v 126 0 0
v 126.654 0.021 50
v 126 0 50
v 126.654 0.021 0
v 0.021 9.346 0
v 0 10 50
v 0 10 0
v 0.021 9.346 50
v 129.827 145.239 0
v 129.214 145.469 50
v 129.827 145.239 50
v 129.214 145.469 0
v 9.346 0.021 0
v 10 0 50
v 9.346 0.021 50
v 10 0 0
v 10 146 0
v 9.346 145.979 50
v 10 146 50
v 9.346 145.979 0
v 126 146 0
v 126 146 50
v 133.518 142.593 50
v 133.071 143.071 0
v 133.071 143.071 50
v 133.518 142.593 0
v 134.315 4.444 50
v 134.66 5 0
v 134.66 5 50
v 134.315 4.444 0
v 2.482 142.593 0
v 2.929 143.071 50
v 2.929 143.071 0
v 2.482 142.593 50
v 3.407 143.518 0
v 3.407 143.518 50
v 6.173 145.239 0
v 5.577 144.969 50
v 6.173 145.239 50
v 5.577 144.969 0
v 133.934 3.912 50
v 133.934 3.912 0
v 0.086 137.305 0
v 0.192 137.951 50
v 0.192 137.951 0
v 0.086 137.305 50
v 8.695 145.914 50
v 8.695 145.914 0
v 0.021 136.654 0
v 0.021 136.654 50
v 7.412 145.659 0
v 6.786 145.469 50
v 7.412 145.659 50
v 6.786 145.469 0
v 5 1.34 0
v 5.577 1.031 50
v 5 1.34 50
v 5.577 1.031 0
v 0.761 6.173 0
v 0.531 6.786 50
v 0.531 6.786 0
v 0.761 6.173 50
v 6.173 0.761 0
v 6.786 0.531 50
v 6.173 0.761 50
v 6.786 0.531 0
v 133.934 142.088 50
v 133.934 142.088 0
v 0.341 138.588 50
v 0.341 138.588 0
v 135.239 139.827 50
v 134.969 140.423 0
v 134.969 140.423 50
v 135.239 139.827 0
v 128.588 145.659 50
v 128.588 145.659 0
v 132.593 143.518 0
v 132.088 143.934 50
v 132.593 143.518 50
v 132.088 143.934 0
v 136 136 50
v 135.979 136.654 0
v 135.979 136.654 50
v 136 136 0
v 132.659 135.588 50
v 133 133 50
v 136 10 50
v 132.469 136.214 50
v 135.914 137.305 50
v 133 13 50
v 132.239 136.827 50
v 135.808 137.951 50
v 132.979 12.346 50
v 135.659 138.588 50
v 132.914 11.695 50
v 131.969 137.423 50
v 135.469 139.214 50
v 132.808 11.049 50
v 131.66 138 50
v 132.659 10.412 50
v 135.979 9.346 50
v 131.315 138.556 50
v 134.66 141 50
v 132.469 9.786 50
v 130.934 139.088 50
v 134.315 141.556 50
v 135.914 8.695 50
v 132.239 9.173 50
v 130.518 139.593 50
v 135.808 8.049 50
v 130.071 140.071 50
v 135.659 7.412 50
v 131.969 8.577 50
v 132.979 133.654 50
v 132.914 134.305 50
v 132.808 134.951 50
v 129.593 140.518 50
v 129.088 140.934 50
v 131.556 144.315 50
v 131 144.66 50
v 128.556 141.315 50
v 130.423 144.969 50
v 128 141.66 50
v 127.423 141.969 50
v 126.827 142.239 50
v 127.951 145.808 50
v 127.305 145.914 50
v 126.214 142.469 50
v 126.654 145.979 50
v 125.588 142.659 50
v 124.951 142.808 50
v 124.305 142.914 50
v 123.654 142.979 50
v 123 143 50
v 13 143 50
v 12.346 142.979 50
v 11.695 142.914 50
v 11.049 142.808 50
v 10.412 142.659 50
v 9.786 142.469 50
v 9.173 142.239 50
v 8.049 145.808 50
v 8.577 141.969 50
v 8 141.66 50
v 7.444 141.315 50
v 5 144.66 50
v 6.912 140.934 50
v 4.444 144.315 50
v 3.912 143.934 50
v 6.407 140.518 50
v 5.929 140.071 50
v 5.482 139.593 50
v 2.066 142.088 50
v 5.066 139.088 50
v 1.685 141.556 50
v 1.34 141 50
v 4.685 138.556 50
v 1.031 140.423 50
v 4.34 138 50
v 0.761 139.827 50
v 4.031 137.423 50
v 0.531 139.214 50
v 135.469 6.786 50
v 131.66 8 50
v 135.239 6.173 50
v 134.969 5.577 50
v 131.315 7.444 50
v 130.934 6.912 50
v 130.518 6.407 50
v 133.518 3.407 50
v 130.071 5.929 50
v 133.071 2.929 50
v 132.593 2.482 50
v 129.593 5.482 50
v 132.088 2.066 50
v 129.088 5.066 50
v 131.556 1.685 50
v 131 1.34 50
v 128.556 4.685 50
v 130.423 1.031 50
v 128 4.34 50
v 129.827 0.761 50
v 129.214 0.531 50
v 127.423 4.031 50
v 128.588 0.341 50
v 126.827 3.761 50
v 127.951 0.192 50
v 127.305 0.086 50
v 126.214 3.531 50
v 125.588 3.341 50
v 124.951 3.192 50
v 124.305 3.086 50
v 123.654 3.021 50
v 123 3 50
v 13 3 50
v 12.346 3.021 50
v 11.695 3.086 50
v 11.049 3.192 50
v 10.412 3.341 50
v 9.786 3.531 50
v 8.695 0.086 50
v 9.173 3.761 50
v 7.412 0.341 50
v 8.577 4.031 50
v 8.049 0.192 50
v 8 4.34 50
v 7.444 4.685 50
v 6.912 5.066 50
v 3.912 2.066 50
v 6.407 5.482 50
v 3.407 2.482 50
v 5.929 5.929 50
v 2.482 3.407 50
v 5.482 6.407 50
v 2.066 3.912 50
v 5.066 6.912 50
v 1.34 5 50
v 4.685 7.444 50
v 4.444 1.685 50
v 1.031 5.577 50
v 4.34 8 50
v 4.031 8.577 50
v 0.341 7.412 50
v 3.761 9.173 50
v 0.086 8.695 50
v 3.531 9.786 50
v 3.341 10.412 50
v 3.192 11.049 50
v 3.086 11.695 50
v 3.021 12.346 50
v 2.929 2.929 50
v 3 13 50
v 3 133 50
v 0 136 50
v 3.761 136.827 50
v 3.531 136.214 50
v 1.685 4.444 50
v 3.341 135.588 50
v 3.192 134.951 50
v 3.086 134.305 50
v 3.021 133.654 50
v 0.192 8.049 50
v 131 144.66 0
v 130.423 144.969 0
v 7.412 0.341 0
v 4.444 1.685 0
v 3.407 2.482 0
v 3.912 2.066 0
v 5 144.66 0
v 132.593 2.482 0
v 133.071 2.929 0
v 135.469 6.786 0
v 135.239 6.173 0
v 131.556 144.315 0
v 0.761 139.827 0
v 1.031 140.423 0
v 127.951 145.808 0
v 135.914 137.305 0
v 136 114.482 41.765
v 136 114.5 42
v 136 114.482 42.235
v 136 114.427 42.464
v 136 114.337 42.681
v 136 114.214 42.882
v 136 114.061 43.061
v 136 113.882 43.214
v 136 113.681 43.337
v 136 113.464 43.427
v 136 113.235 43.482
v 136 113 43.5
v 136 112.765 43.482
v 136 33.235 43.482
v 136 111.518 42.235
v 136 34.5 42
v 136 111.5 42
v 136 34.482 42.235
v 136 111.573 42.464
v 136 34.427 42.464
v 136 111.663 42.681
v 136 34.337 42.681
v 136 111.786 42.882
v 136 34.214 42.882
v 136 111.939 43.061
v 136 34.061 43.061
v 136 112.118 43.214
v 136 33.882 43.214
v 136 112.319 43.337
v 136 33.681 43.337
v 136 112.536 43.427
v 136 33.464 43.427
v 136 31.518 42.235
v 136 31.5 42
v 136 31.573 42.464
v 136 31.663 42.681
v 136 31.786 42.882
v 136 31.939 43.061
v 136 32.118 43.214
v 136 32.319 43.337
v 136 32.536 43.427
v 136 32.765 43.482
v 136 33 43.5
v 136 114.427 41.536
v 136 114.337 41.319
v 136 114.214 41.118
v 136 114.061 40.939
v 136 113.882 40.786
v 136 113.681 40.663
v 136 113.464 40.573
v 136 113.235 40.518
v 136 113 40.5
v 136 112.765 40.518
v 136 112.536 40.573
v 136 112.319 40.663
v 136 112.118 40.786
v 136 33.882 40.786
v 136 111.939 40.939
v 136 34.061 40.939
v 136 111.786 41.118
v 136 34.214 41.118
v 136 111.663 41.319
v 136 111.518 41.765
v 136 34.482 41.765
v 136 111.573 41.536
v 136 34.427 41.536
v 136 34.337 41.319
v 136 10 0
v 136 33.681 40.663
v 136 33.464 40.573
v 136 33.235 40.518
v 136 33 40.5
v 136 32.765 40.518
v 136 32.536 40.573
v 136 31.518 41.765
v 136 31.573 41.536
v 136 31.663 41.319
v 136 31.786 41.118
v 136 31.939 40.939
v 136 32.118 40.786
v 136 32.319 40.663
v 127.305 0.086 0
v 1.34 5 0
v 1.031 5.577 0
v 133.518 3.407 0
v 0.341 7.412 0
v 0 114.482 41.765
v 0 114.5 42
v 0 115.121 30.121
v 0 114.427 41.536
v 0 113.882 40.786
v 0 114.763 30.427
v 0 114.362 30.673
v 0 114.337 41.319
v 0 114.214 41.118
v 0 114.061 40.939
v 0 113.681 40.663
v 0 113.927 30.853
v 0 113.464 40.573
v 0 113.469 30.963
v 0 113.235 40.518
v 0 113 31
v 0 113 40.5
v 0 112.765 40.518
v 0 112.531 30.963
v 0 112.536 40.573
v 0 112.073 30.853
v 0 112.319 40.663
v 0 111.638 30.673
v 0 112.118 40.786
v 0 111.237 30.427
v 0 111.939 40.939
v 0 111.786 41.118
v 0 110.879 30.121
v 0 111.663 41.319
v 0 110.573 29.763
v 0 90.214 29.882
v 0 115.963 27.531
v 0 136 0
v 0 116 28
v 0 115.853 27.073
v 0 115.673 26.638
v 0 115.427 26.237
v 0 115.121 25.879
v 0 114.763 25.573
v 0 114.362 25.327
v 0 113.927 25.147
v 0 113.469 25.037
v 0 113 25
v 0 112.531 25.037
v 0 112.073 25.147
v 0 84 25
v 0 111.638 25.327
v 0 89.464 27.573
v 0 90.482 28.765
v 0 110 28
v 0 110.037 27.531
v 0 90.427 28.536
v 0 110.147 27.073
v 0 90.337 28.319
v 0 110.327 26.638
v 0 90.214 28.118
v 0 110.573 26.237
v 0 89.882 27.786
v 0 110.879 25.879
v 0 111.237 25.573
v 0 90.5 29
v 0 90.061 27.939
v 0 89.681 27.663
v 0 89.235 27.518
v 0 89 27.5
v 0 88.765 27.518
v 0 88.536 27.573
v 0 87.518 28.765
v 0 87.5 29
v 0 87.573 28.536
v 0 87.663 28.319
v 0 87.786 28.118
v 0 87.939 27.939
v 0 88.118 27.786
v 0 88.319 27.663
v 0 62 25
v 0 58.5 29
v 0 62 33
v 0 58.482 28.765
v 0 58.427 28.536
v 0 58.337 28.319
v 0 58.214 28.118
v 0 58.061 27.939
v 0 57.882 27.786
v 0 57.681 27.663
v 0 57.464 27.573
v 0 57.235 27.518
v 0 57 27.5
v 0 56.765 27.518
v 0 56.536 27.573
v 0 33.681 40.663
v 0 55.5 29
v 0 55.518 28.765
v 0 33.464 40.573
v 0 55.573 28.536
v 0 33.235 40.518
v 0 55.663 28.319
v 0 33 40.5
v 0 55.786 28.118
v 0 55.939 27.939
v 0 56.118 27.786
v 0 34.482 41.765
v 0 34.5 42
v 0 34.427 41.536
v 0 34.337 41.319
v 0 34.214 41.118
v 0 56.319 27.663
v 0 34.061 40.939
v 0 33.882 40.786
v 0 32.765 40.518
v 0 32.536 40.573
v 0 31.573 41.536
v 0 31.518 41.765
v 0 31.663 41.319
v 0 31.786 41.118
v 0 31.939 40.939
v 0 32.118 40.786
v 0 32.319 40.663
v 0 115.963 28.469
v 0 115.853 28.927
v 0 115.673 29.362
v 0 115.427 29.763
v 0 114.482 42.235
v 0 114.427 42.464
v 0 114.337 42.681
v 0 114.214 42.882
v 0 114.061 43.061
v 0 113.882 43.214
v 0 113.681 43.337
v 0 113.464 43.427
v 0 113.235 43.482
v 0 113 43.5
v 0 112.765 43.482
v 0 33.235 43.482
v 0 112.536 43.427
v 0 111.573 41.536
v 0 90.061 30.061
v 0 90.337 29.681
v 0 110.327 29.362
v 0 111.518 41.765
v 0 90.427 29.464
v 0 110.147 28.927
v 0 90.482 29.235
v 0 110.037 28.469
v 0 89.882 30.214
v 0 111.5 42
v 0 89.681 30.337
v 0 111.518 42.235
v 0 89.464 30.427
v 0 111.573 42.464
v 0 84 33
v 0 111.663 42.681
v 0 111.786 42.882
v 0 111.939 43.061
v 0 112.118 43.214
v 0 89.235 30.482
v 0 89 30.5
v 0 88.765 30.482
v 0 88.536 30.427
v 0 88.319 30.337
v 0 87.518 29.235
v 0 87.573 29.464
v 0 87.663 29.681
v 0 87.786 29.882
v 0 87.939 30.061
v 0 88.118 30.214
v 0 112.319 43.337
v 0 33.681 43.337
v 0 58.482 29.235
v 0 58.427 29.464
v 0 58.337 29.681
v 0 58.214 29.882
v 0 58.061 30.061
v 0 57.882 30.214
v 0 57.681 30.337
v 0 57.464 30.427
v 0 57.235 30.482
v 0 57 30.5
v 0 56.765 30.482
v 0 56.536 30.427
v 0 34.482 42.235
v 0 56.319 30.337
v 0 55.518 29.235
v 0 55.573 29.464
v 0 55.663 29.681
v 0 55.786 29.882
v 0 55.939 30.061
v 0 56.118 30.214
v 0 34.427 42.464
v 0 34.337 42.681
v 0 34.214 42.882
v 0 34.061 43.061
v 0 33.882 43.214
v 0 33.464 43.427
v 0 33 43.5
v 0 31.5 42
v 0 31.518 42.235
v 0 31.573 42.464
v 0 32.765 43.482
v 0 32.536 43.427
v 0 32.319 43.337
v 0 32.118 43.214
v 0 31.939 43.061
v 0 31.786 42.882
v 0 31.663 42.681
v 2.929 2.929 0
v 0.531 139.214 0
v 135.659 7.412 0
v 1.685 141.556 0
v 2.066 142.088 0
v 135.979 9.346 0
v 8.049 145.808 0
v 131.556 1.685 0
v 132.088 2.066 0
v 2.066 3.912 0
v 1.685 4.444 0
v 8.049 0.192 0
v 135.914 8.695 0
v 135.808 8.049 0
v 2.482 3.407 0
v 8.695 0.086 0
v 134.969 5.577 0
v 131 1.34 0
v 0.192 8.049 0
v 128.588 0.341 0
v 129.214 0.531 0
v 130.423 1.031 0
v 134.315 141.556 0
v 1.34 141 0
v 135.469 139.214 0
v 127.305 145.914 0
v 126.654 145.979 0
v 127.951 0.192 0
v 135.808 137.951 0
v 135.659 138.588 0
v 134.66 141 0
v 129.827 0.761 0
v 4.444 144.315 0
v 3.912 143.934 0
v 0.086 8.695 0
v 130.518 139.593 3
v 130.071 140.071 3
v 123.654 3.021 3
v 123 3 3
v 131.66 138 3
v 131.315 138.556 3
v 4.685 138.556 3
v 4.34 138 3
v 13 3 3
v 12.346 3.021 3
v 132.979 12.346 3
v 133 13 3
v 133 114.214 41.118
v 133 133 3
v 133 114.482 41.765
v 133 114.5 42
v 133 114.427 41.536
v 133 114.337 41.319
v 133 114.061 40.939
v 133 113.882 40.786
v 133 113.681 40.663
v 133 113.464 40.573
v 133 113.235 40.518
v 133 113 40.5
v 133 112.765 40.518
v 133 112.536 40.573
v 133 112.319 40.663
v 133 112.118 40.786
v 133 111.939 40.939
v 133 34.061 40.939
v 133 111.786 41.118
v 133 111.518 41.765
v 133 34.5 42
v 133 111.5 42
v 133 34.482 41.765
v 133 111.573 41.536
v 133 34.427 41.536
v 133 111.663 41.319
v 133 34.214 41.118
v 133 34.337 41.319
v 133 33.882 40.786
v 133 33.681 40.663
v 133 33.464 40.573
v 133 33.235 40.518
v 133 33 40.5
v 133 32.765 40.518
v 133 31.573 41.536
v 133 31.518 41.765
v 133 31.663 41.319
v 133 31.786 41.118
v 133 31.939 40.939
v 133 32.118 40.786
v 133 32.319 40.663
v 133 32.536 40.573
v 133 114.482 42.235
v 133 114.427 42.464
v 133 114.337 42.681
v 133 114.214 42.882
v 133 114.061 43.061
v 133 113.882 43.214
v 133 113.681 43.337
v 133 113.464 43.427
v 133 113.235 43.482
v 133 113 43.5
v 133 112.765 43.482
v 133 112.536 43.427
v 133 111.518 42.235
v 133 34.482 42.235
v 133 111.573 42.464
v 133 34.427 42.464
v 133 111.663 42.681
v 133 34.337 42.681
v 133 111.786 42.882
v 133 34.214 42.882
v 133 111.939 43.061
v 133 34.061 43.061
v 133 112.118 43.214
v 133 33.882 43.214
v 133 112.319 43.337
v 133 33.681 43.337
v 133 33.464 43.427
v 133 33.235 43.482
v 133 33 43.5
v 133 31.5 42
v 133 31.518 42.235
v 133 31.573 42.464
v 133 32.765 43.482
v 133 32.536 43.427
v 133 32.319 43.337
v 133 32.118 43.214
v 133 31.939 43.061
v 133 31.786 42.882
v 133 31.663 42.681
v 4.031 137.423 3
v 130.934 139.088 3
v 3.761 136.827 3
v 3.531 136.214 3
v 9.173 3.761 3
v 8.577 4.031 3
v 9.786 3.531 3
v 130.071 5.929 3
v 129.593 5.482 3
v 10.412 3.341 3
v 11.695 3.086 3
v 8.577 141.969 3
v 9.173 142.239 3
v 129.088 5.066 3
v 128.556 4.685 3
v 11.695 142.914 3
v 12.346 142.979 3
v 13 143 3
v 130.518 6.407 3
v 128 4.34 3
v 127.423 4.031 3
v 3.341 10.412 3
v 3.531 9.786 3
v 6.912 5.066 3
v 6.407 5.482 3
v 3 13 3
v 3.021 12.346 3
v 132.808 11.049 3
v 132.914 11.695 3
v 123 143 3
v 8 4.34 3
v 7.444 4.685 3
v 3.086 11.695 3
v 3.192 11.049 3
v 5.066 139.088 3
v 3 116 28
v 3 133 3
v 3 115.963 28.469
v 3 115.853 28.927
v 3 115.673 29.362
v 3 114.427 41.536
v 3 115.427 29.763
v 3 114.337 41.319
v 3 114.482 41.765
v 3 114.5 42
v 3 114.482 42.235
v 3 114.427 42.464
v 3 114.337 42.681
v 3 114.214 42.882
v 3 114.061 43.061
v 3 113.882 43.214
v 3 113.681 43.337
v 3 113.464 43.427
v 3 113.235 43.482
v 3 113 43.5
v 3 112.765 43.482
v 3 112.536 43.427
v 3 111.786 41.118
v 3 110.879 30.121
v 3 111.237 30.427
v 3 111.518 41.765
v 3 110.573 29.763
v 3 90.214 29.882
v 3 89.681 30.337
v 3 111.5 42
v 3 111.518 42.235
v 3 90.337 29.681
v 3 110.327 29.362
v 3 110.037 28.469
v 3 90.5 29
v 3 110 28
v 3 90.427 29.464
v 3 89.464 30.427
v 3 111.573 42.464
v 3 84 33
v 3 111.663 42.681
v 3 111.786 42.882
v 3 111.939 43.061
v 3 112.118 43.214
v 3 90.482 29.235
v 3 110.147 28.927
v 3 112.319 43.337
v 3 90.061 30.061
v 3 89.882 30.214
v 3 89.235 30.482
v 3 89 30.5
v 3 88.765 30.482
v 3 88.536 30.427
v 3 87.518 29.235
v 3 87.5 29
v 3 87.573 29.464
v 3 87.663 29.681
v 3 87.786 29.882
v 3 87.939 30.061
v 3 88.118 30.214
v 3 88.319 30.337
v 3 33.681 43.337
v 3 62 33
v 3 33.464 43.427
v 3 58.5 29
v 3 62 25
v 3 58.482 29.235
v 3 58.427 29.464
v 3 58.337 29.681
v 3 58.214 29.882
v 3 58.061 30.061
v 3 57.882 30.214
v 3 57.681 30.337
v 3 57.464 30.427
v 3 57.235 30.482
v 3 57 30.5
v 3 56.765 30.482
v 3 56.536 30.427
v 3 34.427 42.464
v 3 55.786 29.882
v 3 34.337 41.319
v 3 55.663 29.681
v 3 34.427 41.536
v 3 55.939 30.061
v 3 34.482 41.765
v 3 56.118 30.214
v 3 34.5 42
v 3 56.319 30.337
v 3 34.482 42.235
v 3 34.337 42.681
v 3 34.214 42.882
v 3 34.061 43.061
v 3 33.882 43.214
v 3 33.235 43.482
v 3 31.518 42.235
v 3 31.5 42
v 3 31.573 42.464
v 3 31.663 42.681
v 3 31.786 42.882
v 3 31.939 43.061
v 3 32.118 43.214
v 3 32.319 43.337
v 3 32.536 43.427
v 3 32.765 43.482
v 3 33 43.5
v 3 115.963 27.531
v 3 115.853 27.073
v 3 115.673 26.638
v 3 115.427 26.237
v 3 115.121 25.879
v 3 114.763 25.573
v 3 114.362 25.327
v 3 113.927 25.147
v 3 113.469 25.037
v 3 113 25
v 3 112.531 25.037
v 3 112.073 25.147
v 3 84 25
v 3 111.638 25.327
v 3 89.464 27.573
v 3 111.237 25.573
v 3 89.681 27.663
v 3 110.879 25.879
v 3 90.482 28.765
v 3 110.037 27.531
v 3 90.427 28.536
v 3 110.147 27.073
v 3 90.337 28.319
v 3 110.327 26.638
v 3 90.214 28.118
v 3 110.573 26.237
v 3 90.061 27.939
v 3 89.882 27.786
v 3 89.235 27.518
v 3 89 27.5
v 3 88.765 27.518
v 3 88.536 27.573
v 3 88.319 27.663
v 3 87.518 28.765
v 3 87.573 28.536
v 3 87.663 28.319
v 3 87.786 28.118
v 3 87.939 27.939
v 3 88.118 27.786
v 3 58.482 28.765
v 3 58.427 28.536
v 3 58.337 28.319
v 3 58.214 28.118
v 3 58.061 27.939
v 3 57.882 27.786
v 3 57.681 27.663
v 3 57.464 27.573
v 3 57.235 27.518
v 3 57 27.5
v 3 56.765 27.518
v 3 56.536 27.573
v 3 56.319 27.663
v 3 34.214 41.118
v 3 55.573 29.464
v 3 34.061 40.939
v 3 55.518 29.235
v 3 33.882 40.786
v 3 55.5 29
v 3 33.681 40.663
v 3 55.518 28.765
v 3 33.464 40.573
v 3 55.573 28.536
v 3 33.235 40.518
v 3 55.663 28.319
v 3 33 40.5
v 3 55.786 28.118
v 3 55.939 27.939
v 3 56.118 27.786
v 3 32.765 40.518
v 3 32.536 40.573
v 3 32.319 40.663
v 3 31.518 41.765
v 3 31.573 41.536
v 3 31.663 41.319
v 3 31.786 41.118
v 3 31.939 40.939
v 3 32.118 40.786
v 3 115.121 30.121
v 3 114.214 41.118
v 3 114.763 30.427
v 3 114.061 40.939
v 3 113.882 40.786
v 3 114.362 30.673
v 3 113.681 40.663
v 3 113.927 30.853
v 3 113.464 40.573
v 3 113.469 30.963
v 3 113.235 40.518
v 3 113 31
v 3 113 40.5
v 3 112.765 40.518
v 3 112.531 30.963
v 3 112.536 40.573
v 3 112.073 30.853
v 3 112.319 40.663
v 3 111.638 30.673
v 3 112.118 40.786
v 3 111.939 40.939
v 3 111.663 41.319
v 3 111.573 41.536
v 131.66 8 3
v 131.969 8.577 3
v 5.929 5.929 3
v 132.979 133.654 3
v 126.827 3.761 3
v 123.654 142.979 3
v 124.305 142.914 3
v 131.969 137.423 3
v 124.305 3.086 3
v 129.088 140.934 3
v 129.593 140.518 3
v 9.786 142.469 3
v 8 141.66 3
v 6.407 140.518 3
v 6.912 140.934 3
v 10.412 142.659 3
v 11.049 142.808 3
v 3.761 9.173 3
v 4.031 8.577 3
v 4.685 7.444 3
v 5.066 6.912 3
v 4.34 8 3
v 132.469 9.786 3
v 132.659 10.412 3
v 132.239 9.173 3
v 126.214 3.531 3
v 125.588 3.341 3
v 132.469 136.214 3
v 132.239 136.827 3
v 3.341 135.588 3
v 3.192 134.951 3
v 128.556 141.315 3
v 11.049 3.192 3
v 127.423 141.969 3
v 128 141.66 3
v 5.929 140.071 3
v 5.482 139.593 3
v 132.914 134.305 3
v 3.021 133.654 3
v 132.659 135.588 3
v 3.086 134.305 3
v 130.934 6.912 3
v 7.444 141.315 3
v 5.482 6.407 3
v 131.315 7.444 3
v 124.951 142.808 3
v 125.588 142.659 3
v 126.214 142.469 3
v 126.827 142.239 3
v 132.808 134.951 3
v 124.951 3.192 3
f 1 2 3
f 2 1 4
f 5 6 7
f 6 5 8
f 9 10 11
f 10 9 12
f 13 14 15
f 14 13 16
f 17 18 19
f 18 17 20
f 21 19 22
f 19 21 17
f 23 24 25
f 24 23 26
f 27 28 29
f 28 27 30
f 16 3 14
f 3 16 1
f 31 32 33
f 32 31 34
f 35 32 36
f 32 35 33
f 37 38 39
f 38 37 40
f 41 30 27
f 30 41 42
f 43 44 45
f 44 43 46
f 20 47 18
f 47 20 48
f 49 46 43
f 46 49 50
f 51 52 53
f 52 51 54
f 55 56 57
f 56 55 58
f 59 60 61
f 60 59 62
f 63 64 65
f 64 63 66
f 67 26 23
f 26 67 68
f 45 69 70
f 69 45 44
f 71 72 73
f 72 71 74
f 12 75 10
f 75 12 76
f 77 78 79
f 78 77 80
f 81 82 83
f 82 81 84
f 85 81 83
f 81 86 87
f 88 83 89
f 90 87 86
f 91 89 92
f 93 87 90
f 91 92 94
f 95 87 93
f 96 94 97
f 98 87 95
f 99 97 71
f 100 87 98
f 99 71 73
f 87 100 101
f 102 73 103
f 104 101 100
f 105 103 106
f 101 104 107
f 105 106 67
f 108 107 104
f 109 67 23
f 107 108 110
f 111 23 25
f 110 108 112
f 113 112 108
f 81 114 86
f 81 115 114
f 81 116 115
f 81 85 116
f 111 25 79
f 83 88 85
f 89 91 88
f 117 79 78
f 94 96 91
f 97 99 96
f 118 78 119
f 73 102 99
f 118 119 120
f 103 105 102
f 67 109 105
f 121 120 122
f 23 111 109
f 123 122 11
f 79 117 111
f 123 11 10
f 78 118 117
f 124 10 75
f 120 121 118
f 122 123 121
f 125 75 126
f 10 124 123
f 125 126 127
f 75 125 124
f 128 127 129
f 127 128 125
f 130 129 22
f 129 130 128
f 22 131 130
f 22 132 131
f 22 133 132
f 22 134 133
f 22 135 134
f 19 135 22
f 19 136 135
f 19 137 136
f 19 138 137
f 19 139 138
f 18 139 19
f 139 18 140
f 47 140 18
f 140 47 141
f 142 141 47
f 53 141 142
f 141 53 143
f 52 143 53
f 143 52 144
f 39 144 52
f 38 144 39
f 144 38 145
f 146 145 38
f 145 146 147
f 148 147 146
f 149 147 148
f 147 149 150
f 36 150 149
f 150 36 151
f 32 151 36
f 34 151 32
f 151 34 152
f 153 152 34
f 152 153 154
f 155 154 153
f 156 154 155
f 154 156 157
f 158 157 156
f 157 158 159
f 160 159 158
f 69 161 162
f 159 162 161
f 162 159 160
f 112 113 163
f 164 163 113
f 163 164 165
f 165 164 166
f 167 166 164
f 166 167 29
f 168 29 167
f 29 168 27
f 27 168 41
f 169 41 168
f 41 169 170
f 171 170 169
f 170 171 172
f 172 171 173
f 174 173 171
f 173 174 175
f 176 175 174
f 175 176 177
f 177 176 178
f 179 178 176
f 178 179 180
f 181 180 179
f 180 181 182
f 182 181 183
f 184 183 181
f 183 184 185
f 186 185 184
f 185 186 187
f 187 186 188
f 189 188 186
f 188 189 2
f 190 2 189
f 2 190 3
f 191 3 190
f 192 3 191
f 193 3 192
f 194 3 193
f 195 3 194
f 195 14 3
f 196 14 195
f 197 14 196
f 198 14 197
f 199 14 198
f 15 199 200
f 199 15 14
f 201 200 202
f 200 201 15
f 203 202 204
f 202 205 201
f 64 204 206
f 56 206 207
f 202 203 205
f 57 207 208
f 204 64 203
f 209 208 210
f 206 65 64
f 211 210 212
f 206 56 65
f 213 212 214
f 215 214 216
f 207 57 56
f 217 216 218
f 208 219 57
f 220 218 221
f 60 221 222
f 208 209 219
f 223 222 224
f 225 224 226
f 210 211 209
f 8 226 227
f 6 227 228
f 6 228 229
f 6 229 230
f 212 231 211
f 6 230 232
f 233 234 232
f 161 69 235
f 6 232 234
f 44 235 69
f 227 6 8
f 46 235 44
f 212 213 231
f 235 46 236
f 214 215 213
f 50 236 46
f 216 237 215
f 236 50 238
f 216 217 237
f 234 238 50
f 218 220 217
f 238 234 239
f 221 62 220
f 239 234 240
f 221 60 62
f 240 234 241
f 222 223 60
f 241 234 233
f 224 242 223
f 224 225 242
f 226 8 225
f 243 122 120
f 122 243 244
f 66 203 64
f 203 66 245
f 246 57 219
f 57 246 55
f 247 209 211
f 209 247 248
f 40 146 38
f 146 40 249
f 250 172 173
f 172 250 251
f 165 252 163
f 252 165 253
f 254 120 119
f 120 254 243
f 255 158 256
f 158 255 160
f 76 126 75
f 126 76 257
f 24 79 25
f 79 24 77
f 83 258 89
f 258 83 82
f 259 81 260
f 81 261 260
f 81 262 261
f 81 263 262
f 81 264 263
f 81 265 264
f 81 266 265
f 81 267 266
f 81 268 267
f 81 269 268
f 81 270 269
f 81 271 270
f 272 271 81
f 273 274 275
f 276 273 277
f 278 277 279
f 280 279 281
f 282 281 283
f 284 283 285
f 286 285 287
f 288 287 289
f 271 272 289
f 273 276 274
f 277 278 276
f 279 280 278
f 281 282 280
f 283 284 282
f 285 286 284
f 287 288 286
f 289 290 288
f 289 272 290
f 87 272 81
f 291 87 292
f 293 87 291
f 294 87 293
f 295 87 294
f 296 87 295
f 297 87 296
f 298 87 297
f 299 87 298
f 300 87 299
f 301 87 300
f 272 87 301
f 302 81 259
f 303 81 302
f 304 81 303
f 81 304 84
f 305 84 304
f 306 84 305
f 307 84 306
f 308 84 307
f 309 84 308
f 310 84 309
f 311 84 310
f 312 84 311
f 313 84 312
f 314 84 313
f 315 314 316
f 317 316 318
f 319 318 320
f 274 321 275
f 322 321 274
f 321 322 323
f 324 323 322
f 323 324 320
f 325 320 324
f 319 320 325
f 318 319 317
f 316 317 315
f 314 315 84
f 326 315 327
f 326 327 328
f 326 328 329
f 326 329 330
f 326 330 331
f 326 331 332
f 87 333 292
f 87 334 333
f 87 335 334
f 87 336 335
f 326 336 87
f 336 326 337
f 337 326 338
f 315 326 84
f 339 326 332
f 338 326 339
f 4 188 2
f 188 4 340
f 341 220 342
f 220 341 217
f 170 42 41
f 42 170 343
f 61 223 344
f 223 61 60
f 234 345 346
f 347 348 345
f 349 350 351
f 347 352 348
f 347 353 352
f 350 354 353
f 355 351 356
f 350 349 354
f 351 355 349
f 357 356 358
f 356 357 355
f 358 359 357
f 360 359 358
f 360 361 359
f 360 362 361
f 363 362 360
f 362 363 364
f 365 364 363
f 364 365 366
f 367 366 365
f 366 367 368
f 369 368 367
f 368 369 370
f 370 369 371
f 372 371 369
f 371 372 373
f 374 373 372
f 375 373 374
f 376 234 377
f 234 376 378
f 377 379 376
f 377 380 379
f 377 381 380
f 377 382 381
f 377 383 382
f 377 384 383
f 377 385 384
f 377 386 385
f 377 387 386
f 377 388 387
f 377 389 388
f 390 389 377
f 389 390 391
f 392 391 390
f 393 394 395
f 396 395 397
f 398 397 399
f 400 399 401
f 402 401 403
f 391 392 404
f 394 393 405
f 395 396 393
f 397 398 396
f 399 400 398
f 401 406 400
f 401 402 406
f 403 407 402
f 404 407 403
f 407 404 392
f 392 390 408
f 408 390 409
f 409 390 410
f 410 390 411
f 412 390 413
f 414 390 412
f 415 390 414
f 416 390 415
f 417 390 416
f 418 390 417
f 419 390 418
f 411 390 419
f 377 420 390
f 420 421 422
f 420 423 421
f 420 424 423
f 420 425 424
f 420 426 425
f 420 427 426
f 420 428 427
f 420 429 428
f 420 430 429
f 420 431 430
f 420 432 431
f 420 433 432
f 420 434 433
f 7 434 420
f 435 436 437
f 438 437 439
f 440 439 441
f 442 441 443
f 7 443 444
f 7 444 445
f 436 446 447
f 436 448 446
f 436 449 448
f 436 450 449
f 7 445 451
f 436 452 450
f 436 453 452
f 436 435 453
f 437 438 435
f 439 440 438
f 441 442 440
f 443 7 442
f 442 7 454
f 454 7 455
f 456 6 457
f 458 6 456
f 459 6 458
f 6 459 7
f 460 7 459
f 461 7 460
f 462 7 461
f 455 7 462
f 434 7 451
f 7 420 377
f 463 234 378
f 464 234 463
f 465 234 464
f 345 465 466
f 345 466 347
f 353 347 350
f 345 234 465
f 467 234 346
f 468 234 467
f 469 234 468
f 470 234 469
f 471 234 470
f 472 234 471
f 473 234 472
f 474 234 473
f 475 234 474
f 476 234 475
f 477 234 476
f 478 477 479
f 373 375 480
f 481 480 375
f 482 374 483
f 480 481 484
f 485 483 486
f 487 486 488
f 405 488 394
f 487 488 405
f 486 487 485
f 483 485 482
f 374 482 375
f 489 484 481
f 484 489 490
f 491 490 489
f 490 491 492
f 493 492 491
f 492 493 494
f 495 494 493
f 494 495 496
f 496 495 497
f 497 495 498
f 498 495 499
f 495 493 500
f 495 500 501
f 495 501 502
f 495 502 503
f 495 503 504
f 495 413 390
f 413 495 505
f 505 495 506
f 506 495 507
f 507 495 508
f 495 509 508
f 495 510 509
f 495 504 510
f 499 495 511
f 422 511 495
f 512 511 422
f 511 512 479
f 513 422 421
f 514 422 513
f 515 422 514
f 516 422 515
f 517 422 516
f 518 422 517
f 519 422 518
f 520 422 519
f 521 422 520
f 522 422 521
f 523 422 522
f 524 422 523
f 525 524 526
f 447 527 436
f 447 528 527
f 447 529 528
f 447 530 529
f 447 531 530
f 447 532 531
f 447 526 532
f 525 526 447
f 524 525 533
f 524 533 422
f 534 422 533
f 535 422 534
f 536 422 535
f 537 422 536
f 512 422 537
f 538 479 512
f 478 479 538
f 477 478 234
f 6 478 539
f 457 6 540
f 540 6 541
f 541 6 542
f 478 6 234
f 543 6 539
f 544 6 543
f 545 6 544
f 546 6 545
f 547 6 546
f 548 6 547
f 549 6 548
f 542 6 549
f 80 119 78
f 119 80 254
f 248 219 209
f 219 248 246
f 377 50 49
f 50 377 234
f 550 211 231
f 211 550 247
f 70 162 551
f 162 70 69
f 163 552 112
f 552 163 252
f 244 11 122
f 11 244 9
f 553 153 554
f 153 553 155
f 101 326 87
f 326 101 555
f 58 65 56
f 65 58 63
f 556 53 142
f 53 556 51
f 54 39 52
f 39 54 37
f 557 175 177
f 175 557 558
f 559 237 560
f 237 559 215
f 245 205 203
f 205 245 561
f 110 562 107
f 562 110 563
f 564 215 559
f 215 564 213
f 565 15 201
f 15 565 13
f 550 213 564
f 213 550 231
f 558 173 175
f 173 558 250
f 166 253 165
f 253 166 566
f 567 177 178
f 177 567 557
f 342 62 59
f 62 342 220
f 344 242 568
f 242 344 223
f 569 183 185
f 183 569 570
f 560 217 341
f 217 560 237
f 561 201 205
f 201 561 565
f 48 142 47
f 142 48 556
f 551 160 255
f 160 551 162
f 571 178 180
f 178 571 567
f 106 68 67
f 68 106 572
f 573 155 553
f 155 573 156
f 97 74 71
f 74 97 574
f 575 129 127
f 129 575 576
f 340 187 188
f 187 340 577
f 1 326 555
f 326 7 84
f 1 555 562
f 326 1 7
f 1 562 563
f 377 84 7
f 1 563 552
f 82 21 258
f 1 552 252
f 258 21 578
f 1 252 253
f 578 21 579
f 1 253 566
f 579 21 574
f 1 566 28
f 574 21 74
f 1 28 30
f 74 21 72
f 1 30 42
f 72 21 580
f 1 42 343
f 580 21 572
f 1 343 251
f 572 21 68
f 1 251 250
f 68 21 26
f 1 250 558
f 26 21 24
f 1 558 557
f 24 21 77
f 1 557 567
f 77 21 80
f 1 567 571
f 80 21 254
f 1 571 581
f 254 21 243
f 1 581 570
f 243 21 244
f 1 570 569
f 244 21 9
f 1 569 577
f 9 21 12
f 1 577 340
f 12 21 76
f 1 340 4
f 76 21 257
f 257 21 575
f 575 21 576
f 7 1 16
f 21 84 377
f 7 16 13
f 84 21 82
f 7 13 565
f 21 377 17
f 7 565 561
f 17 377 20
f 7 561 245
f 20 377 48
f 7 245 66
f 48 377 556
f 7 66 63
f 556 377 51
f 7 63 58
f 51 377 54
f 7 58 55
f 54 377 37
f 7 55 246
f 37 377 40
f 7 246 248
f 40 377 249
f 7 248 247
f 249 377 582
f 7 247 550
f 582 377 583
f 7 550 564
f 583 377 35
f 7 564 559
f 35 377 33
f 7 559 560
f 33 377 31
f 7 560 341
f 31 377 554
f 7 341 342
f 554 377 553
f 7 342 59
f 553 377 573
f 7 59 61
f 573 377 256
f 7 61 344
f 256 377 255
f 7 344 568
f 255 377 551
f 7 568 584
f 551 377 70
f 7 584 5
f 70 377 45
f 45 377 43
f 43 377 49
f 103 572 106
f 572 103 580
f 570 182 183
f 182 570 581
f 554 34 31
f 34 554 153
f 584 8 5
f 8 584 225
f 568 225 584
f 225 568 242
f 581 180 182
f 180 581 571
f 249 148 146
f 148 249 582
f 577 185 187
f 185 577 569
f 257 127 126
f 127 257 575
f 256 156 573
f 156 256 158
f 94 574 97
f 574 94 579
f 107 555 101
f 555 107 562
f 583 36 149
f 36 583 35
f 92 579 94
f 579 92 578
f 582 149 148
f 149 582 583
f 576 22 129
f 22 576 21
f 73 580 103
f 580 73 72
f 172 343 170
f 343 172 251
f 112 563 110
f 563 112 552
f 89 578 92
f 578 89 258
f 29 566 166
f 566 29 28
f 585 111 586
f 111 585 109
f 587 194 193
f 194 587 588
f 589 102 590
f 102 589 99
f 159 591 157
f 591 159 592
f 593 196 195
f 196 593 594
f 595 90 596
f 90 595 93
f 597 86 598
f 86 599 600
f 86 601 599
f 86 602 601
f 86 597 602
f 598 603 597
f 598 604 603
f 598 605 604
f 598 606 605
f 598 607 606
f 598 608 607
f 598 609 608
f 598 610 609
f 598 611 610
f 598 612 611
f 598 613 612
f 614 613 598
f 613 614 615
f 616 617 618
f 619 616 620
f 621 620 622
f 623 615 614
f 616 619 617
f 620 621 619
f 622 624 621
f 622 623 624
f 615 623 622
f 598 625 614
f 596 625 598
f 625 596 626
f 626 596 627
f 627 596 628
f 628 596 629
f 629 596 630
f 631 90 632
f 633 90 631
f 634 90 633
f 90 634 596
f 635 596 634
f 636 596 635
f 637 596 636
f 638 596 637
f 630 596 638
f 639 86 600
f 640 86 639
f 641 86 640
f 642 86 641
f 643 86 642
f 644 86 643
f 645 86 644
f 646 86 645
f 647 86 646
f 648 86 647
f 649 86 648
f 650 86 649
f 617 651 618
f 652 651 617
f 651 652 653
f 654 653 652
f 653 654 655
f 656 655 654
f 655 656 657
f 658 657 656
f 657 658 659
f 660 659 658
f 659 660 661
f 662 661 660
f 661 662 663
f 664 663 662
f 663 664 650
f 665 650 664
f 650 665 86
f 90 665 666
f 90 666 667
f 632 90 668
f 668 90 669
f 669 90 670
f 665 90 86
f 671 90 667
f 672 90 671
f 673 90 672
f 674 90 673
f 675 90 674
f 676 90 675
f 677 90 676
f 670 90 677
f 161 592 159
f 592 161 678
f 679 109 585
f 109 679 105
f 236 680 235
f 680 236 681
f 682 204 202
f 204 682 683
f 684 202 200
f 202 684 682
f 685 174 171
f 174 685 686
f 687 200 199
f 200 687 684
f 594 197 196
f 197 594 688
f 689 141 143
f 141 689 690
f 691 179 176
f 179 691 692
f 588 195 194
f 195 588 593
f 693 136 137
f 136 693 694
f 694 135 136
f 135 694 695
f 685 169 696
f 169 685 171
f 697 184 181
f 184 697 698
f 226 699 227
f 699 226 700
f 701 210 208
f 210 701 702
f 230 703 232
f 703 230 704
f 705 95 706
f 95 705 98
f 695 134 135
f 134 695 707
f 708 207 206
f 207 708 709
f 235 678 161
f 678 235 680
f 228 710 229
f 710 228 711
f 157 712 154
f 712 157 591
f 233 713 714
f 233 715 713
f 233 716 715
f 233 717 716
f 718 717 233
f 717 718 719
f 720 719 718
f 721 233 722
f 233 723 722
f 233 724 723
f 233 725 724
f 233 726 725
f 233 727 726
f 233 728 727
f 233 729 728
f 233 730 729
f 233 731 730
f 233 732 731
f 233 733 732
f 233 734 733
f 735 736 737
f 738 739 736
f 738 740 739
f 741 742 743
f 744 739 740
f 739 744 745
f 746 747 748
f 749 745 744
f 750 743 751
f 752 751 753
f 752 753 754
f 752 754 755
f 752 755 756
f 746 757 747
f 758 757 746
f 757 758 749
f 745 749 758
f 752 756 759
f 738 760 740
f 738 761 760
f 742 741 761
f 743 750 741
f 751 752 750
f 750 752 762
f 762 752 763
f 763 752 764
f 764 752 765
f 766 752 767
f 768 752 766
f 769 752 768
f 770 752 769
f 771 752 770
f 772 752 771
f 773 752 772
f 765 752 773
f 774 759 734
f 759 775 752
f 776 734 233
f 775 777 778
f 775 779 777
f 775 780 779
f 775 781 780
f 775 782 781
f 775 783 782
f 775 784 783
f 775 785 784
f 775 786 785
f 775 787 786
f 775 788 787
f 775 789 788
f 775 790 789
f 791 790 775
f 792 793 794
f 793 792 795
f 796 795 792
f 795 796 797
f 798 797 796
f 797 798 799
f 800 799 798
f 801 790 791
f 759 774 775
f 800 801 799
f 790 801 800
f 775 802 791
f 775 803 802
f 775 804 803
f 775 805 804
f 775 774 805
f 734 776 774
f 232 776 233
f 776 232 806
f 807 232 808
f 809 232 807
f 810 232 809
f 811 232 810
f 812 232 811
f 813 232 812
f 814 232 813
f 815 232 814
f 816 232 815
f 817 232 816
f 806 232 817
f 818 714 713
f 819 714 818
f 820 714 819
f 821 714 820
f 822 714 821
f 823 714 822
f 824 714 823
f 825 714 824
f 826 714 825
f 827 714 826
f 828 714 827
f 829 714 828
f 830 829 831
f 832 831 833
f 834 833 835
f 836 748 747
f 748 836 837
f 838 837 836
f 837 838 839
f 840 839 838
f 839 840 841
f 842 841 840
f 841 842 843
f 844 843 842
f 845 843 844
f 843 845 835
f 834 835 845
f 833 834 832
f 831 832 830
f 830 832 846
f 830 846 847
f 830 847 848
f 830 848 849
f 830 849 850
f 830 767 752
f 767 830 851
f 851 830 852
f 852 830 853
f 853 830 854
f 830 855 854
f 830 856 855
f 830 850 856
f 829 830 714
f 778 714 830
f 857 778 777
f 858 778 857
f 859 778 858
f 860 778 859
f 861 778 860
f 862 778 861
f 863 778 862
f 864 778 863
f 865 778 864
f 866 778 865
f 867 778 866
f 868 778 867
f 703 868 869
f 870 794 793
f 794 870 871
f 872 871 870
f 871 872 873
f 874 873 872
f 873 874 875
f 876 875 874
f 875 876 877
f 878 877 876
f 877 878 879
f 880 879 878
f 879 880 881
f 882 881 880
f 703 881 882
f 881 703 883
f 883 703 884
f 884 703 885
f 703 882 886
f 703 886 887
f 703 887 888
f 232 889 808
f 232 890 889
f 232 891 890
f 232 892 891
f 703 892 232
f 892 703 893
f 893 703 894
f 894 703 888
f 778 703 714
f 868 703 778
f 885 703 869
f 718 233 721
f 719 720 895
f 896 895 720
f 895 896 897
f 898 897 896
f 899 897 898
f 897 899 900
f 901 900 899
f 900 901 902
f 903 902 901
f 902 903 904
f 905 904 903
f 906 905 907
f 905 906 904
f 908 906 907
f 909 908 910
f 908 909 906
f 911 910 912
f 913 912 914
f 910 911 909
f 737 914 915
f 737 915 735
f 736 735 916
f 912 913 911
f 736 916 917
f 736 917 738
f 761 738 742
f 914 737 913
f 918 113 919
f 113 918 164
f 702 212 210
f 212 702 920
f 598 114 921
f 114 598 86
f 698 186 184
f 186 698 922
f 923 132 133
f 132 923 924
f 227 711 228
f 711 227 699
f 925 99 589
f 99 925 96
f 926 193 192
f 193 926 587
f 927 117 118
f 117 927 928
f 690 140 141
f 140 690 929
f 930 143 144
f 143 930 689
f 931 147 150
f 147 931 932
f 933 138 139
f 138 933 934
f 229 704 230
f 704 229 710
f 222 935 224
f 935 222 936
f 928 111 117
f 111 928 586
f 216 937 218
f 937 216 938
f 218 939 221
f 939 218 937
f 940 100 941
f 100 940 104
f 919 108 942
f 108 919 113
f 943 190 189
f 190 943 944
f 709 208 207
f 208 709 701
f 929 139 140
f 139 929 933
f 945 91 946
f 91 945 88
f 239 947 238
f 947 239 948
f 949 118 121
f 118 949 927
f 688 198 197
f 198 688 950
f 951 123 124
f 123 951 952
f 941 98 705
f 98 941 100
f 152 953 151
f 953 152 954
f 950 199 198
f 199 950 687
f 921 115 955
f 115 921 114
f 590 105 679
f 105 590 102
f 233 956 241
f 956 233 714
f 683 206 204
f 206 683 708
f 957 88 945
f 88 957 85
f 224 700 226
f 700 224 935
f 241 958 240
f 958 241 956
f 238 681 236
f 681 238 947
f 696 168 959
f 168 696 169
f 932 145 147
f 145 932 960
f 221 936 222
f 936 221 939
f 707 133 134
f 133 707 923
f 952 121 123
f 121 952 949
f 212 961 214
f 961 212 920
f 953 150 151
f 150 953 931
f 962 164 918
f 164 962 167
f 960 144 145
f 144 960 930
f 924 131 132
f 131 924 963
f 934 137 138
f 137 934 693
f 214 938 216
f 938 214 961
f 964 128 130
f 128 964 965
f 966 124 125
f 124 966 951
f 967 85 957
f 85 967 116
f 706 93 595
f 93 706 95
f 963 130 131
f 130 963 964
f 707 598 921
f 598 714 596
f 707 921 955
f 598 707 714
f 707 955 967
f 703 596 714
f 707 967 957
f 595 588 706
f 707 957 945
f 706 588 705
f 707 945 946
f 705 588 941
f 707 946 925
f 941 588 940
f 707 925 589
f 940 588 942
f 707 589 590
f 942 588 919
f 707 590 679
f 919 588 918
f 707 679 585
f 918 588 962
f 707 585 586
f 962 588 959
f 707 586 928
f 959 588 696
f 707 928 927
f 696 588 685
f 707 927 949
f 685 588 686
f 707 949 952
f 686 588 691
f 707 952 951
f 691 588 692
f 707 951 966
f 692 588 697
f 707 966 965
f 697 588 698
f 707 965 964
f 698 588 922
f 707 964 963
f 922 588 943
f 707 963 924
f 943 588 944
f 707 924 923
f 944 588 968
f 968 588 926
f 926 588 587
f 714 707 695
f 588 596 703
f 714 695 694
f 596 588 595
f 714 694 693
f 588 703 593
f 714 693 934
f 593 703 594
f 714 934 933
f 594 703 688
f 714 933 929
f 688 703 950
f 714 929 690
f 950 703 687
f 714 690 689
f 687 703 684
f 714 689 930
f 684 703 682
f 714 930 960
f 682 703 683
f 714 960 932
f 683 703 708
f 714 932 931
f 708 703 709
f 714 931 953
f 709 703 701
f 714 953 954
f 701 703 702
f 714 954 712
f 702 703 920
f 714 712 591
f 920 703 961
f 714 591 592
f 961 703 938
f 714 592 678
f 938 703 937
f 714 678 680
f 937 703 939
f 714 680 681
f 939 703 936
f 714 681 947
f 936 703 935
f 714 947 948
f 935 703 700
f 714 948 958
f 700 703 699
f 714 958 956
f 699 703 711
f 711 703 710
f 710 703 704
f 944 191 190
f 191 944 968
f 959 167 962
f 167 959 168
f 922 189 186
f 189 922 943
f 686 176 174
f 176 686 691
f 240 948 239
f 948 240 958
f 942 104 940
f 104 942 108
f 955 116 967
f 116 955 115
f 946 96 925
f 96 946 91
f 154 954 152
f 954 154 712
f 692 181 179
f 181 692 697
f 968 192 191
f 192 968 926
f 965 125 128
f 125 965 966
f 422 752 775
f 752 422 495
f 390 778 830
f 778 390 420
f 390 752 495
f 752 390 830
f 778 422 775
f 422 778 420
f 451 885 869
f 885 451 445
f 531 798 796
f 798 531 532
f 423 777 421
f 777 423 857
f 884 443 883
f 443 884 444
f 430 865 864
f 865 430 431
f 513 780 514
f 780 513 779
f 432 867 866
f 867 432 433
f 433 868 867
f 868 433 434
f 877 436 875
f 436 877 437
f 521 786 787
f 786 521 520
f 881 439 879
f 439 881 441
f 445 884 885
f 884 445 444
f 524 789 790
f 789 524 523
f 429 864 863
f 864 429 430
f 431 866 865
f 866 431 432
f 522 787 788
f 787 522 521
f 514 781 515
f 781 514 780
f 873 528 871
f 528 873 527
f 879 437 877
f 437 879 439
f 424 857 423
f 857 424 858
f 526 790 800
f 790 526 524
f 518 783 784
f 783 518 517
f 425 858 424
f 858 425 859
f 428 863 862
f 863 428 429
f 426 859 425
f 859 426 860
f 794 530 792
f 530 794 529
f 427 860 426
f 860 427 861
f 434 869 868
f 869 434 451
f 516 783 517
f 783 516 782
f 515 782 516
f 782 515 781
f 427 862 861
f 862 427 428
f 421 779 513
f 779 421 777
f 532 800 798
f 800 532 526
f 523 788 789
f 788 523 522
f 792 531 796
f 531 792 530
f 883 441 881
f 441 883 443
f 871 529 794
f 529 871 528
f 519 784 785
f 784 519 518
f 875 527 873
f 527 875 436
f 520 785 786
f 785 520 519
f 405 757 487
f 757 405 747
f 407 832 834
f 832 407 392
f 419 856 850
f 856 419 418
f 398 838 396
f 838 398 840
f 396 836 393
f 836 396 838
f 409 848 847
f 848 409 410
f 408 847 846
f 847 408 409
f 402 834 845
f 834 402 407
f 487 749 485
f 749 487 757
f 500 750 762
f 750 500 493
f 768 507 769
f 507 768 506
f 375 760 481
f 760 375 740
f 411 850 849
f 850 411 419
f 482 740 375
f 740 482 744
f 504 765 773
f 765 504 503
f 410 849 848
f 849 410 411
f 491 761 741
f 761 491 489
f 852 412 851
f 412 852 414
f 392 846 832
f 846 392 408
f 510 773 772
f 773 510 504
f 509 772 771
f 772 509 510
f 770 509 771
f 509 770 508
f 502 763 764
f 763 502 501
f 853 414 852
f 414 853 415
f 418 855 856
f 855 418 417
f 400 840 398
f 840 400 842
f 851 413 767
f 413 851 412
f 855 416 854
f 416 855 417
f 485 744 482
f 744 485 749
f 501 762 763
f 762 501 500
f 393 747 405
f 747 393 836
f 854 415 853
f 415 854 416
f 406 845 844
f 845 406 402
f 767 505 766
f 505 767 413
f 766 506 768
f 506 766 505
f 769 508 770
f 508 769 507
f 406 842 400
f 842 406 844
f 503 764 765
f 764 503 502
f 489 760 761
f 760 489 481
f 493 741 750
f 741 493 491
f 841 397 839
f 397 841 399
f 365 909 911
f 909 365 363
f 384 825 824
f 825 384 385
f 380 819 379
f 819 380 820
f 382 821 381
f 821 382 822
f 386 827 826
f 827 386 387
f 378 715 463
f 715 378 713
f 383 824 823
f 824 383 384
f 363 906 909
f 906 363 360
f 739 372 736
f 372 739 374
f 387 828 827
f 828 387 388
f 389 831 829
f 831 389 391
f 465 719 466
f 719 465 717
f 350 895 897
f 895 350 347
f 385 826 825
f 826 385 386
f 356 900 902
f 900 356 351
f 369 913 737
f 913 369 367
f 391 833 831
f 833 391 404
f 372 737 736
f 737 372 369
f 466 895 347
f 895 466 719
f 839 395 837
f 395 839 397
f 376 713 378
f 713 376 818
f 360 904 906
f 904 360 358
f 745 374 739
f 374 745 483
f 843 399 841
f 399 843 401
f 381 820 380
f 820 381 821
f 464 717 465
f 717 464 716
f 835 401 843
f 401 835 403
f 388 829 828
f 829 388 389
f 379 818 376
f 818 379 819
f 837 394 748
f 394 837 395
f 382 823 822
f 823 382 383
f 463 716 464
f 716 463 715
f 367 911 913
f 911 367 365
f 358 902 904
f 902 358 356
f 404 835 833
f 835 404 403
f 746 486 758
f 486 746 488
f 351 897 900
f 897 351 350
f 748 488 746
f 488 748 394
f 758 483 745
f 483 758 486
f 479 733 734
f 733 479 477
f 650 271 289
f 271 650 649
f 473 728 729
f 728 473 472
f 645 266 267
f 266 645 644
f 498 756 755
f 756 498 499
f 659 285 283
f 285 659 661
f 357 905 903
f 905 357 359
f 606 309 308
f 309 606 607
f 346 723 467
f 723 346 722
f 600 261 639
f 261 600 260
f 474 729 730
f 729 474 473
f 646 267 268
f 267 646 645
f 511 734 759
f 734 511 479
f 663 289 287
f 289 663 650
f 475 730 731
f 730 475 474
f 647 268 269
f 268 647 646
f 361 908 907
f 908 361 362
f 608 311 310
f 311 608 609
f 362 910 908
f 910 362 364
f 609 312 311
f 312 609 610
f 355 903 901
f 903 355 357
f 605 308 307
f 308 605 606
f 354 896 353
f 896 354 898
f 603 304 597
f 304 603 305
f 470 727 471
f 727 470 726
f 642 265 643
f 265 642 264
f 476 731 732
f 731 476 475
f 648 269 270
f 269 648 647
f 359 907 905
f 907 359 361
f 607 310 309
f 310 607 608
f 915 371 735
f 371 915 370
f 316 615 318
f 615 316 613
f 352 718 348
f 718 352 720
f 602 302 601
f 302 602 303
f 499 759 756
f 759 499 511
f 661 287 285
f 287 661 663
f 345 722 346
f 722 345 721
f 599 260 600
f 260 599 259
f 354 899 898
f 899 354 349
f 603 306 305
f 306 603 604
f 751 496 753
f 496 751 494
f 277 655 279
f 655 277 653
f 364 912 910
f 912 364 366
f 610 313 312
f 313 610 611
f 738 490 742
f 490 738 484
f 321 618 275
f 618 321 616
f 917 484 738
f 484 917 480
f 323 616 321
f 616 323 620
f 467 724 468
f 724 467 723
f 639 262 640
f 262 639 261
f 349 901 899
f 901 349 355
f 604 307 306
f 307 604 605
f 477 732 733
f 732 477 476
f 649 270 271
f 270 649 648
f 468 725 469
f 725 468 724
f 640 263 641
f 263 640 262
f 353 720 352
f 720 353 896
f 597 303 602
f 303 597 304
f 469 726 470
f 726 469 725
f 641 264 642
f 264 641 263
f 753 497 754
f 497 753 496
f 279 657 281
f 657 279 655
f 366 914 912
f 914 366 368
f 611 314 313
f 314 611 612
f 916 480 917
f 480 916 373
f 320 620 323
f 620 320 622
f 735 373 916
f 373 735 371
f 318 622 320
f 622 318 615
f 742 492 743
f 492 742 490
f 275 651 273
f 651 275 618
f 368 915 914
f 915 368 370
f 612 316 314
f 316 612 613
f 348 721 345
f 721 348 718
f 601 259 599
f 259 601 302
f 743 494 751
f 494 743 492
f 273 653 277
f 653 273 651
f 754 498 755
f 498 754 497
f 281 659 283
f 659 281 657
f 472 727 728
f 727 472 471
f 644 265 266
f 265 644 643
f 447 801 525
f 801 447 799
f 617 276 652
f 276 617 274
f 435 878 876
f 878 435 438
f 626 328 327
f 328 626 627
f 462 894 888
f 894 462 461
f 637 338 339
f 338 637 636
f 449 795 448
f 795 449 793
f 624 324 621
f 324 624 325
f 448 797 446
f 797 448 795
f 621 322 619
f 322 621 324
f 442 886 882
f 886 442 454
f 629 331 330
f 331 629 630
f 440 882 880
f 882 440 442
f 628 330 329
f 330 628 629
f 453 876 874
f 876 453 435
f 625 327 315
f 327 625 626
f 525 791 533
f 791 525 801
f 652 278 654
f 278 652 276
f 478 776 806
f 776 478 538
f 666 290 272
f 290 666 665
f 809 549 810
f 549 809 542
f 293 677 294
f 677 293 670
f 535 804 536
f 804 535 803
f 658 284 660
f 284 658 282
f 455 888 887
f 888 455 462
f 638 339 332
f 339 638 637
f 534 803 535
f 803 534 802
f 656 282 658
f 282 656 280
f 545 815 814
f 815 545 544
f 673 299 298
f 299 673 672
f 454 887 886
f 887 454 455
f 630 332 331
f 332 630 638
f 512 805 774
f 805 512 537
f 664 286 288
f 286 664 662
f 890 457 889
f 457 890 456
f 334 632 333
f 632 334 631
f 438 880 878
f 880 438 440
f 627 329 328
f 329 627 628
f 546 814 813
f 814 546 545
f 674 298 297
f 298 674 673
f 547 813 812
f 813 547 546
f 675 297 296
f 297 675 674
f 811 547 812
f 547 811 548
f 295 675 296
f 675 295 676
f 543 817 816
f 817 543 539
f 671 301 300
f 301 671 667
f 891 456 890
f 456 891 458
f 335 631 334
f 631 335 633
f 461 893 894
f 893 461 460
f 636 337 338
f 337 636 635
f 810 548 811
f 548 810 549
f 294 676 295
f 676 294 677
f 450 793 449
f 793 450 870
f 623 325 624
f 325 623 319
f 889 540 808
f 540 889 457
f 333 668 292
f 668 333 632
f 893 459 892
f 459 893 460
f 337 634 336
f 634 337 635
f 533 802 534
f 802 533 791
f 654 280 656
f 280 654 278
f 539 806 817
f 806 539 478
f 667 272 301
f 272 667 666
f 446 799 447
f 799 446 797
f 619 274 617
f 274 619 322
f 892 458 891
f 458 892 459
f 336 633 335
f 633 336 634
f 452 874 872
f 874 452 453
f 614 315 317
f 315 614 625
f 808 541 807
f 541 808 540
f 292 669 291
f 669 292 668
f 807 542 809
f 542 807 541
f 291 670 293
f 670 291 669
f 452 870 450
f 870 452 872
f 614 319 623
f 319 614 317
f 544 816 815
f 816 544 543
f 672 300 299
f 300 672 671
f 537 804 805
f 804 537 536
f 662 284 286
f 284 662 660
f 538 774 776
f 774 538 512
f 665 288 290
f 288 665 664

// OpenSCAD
plaat_breedte = 136;
plaat_hoogte = 146;
hoekradius = 10;
plaat_dikte = 3; 
totale_hoogte = 50;
$fn = 96;
module buitenvorm_2d() {
    translate([hoekradius, hoekradius])
        offset(r = hoekradius)
            square([plaat_breedte - 2*hoekradius,
                    plaat_hoogte - 2*hoekradius]);
}
module binnenvorm_2d() {
    translate([hoekradius, hoekradius])
        offset(r = hoekradius)
            square([plaat_breedte - 2*plaat_dikte - 2*hoekradius,
                    plaat_hoogte - 2*plaat_dikte - 2*hoekradius]);
}

module kast() {
    difference() {
        linear_extrude(height = totale_hoogte) buitenvorm_2d();
        translate([plaat_dikte, plaat_dikte, plaat_dikte])linear_extrude(height = 99) binnenvorm_2d();
    }
}

module uitsparing_power(){
     cube([80, 22, 8]);
     translate([40, -5, 4])  rotate([0, 90, 0]) cylinder(h=80, d=3, center=true, $fn=40);
     translate([40, 22+5, 4])  rotate([0, 90, 0]) cylinder(h=80, d=3, center=true, $fn=40);
    
 }

// Voor een vlakke DXF/SVG-export: vervang onderstaande regel door paneel_2d();
    difference() {
        union() {
            kast();
        }
        union() {
            translate([-20,((plaat_hoogte-22)/2),25]) uitsparing_power();

            // power
            translate([-20,((plaat_hoogte)/2+40),28]) rotate([0, 90, 0])  cylinder(h=80, d=6, center=true, $fn=40);
            // montage
            translate([-20,((plaat_hoogte)/2+40),42]) rotate([0, 90, 0])  cylinder(h=999, d=3, center=true, $fn=40);
            translate([-20,((plaat_hoogte)/2-40),42]) rotate([0, 90, 0])  cylinder(h=999, d=3, center=true, $fn=40);
            
        }
    }
